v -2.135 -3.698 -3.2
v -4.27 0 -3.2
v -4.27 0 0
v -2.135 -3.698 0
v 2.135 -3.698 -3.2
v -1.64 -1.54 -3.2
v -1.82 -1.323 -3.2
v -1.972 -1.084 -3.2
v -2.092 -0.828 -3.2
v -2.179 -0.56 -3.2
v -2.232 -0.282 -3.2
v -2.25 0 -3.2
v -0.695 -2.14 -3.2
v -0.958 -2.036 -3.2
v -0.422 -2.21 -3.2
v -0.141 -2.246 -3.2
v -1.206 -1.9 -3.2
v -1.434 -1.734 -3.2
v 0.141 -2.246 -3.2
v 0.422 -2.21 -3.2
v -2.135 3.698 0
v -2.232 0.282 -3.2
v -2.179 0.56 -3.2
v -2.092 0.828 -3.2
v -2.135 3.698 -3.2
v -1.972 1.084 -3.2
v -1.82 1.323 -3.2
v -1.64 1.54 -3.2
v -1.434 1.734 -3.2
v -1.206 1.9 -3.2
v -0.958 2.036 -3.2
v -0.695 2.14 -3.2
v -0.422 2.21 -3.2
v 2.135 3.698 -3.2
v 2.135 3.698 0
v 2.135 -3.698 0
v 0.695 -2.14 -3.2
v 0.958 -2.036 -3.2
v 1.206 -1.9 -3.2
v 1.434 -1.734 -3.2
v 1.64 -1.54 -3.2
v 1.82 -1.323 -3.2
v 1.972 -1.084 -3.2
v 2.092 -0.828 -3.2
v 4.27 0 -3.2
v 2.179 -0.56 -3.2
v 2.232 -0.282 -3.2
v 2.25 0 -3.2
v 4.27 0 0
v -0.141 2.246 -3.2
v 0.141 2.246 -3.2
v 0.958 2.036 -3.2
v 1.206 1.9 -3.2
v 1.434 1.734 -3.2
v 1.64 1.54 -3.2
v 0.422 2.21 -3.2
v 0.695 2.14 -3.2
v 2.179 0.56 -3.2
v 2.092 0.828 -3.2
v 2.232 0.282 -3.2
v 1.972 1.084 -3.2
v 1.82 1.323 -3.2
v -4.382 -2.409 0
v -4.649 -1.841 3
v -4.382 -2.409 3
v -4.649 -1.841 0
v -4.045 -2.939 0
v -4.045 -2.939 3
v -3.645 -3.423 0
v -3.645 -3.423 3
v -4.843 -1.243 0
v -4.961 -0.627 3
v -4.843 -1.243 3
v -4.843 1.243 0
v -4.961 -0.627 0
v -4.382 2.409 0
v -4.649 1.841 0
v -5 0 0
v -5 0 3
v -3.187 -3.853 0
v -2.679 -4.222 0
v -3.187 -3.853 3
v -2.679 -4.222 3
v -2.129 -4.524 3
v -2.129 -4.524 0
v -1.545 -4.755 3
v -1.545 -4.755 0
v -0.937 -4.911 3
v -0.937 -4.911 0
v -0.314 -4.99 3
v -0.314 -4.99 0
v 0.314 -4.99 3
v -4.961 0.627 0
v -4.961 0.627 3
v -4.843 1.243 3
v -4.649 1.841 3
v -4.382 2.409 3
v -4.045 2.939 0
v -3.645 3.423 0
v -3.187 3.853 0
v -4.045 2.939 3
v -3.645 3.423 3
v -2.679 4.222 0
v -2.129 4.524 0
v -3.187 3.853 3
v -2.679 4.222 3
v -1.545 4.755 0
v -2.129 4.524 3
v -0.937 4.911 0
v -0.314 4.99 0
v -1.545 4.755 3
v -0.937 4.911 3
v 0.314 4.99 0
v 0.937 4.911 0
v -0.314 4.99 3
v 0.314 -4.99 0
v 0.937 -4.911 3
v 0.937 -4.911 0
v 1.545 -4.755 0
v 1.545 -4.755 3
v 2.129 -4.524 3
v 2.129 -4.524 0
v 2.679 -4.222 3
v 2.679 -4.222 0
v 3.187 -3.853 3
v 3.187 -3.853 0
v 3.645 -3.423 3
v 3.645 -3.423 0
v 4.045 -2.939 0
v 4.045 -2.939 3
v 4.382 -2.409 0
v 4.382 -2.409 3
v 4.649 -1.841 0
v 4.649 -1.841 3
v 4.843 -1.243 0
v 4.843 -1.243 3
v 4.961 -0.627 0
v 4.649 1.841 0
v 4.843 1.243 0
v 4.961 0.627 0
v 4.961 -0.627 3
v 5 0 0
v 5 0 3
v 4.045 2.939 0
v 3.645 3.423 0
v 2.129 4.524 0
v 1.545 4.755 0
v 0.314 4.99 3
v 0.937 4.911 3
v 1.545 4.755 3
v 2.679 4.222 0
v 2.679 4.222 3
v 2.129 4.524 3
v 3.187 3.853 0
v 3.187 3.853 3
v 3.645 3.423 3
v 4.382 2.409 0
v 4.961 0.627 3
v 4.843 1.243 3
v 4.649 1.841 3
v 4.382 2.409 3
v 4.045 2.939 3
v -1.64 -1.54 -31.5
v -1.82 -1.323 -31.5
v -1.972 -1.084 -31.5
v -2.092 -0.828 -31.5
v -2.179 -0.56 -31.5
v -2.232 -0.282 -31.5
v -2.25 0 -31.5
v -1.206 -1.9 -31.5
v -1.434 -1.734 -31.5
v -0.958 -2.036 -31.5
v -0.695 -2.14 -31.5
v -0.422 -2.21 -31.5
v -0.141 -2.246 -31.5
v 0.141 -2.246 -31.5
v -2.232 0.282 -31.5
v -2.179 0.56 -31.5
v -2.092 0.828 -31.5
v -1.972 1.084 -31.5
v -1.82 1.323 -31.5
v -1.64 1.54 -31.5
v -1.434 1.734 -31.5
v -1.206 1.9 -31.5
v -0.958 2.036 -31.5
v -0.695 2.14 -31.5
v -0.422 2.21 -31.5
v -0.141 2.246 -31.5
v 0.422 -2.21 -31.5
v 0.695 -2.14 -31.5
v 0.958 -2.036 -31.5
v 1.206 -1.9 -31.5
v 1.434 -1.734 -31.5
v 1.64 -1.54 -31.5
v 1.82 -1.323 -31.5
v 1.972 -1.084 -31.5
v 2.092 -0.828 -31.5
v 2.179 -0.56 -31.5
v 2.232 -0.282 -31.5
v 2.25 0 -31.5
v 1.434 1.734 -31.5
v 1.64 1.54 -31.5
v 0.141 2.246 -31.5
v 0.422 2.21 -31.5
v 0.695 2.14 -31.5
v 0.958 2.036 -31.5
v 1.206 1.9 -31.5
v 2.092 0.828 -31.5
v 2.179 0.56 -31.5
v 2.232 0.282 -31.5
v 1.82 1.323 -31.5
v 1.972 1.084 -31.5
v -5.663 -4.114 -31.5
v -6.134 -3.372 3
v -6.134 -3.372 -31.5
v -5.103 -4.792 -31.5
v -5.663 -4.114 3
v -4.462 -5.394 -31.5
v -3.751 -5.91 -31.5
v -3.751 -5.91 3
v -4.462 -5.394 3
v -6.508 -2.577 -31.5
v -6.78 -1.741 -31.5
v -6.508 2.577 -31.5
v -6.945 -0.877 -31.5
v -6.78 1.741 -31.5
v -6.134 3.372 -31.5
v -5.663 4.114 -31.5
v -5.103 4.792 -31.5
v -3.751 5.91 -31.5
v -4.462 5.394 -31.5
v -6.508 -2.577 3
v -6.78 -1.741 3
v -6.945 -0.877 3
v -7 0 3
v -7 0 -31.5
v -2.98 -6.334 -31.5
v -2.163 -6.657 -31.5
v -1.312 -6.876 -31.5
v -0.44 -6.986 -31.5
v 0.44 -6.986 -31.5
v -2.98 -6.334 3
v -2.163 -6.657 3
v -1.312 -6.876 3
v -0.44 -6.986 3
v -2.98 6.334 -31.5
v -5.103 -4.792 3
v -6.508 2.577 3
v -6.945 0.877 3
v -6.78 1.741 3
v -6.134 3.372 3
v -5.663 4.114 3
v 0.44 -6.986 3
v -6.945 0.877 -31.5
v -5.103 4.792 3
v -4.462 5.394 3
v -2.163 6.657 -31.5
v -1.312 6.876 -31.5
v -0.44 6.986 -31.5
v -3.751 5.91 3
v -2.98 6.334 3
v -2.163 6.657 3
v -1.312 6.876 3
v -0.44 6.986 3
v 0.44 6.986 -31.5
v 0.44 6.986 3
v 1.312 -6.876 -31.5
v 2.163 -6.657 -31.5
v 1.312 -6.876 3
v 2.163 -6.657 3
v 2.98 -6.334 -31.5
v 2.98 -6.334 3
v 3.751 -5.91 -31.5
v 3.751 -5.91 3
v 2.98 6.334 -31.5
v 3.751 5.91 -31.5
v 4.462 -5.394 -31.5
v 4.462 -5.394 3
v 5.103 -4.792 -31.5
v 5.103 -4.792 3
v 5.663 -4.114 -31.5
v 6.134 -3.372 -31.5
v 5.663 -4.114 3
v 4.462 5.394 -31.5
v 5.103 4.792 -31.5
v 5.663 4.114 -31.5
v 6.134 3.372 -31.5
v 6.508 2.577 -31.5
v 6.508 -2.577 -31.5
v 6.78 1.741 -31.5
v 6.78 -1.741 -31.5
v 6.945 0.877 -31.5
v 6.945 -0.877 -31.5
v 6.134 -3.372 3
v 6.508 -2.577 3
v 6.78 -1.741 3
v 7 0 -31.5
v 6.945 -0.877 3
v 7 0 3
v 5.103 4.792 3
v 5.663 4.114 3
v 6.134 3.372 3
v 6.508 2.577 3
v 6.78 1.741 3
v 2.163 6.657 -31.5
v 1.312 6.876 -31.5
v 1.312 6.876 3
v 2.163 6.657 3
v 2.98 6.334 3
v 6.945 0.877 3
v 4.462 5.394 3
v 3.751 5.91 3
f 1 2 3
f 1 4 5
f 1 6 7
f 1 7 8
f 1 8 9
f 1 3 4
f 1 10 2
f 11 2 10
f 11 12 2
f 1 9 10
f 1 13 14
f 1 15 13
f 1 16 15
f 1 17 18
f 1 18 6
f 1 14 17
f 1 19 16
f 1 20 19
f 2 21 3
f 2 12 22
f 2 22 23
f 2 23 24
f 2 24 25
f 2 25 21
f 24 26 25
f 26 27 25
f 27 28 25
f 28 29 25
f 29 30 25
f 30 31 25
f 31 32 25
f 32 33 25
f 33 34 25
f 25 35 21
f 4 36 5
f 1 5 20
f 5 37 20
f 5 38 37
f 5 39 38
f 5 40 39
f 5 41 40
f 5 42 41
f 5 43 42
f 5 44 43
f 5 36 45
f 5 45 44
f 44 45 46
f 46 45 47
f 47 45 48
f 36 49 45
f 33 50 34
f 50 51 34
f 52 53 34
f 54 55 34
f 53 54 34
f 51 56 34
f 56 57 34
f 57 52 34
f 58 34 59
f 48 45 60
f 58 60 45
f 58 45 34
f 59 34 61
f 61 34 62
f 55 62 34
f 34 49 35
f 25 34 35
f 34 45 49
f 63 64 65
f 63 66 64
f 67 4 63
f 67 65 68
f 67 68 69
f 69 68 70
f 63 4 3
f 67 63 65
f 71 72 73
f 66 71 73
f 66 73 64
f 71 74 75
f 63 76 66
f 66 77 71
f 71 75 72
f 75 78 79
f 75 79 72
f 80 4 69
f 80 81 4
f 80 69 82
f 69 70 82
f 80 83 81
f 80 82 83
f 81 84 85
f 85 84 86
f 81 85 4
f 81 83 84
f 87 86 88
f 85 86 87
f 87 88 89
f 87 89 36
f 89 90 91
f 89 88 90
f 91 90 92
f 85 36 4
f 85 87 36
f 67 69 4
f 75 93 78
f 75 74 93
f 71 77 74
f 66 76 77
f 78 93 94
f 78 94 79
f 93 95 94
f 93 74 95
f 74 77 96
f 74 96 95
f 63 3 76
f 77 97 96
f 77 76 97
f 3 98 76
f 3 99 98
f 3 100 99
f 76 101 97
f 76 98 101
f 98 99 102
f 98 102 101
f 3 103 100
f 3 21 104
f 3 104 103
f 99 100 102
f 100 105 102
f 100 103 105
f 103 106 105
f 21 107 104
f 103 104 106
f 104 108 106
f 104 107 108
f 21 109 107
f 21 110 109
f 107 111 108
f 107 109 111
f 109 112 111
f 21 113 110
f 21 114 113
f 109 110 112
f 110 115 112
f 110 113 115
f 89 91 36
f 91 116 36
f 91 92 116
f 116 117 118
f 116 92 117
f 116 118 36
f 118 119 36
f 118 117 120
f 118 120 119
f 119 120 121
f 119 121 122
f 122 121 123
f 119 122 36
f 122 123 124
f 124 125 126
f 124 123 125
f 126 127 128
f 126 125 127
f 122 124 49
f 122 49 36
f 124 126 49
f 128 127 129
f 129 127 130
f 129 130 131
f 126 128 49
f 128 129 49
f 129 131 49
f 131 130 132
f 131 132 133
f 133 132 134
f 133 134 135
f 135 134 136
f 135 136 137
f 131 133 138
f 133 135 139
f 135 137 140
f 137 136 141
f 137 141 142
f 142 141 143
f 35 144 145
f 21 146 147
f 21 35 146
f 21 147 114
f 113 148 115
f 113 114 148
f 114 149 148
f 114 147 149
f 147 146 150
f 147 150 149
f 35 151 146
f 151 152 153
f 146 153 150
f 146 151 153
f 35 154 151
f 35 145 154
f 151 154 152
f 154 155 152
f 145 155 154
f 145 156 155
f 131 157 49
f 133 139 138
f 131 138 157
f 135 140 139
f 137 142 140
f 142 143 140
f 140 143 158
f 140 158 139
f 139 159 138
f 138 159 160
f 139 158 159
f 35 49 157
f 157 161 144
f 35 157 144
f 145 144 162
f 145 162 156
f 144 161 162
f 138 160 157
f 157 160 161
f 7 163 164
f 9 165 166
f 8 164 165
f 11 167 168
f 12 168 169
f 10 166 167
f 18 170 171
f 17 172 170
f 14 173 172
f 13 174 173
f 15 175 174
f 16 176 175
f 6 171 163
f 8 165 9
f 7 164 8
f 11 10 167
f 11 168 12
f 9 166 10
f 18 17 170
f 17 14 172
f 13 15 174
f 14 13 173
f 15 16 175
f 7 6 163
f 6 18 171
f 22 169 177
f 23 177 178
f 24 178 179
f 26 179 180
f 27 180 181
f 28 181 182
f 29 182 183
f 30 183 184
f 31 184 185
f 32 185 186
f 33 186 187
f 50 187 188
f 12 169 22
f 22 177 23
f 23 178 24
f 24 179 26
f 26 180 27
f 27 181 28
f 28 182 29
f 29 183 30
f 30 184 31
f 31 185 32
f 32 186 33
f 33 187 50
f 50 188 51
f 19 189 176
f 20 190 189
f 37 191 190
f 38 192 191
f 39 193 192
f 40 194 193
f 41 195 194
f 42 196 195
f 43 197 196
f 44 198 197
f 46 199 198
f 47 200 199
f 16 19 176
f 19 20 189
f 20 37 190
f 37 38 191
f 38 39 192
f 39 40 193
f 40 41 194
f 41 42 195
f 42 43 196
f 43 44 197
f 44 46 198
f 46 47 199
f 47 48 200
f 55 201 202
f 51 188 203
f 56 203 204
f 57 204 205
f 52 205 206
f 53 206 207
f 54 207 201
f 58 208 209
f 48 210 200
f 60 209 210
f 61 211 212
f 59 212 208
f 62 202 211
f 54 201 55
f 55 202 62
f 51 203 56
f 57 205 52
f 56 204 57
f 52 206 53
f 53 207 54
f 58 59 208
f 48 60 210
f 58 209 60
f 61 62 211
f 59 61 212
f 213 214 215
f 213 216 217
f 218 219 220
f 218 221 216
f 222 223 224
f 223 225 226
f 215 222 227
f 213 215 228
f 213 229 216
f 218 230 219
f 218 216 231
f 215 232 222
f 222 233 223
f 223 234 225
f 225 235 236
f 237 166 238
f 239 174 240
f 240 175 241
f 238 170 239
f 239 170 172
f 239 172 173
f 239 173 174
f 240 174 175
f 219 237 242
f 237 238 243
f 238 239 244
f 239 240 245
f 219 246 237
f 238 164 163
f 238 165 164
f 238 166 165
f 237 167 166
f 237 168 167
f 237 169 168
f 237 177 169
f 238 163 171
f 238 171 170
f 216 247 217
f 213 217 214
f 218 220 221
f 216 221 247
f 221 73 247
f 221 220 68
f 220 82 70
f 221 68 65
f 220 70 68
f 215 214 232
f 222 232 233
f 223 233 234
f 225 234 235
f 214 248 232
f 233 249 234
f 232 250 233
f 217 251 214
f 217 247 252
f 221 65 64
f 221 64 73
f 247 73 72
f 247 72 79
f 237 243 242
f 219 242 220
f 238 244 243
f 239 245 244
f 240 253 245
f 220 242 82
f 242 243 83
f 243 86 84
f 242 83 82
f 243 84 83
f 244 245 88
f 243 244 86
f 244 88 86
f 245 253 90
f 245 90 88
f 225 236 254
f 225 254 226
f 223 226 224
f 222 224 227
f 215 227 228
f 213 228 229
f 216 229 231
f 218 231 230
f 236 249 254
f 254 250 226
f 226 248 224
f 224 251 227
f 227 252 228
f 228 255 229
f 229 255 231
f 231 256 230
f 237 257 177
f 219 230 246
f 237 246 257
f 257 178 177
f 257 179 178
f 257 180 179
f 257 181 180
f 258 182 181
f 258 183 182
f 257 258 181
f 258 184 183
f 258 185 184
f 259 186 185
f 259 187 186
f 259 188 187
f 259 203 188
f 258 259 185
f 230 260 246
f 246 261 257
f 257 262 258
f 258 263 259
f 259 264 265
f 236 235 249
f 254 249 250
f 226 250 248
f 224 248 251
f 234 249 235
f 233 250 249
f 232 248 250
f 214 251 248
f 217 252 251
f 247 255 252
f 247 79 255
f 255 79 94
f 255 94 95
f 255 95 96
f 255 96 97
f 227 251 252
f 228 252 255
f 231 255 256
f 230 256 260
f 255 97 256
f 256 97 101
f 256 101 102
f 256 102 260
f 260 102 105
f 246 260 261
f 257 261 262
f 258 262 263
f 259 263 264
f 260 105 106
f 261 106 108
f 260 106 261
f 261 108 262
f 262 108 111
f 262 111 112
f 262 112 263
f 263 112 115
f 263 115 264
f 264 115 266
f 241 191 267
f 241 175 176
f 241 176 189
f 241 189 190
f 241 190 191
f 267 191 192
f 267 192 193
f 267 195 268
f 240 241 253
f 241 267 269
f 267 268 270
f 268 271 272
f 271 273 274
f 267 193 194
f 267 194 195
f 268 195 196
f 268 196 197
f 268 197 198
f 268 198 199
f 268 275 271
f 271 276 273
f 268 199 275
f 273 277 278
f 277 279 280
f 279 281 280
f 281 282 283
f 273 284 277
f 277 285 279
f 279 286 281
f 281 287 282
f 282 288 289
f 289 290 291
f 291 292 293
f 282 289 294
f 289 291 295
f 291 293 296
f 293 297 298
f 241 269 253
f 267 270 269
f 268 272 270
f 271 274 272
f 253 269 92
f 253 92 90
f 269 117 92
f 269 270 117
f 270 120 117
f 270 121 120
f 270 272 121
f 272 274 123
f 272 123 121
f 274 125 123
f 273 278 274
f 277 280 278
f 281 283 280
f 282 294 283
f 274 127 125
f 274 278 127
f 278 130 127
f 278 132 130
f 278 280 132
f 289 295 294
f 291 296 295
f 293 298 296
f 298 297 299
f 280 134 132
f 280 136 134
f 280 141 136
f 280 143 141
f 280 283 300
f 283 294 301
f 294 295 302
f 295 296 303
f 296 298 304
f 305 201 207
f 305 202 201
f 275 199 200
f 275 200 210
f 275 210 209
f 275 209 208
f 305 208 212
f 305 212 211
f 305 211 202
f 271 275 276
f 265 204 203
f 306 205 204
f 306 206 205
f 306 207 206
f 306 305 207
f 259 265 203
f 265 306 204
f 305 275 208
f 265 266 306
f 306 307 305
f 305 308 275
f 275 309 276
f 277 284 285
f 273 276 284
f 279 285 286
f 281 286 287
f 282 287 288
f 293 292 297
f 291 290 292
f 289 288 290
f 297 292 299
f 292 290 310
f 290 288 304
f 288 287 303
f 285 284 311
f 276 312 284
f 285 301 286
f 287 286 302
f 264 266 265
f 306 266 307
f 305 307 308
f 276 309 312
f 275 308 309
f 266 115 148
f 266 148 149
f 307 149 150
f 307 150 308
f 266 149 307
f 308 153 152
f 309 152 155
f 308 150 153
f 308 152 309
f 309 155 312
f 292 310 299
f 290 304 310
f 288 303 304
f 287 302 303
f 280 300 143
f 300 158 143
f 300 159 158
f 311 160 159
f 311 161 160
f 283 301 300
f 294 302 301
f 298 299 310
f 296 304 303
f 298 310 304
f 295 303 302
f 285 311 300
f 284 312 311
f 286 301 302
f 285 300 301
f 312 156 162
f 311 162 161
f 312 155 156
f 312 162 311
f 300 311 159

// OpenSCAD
$fn = 50;

difference() {
	union() {
		translate(v = [0, 0, -31.5]) {
			cylinder(h = 34.5, r = 7.0);
		}
	}
	union() {
		translate(v = [0, 0, 0]) {
			rotate(a = [0, 0, 0]) {
				difference() {
					union() {
						translate(v = [0, 0, -3.2]) {
							linear_extrude(height = 3.2) {
								polygon(points = [[4.2698, 0.0], [2.1349000000000005, 3.697755269078796], [-2.134899999999999, 3.6977552690787965], [-4.2698, 5.228996902999369e-16], [-2.134900000000002, -3.6977552690787956], [2.1348999999999974, -3.697755269078798]]);
							}
						}
					}
					union();
				}
			}
		}
		#cylinder(h = 3, r = 5.0);
		#translate(v = [0, 0, -100.0]) {
			cylinder(h = 200, r = 2.25);
		}
	}
}
